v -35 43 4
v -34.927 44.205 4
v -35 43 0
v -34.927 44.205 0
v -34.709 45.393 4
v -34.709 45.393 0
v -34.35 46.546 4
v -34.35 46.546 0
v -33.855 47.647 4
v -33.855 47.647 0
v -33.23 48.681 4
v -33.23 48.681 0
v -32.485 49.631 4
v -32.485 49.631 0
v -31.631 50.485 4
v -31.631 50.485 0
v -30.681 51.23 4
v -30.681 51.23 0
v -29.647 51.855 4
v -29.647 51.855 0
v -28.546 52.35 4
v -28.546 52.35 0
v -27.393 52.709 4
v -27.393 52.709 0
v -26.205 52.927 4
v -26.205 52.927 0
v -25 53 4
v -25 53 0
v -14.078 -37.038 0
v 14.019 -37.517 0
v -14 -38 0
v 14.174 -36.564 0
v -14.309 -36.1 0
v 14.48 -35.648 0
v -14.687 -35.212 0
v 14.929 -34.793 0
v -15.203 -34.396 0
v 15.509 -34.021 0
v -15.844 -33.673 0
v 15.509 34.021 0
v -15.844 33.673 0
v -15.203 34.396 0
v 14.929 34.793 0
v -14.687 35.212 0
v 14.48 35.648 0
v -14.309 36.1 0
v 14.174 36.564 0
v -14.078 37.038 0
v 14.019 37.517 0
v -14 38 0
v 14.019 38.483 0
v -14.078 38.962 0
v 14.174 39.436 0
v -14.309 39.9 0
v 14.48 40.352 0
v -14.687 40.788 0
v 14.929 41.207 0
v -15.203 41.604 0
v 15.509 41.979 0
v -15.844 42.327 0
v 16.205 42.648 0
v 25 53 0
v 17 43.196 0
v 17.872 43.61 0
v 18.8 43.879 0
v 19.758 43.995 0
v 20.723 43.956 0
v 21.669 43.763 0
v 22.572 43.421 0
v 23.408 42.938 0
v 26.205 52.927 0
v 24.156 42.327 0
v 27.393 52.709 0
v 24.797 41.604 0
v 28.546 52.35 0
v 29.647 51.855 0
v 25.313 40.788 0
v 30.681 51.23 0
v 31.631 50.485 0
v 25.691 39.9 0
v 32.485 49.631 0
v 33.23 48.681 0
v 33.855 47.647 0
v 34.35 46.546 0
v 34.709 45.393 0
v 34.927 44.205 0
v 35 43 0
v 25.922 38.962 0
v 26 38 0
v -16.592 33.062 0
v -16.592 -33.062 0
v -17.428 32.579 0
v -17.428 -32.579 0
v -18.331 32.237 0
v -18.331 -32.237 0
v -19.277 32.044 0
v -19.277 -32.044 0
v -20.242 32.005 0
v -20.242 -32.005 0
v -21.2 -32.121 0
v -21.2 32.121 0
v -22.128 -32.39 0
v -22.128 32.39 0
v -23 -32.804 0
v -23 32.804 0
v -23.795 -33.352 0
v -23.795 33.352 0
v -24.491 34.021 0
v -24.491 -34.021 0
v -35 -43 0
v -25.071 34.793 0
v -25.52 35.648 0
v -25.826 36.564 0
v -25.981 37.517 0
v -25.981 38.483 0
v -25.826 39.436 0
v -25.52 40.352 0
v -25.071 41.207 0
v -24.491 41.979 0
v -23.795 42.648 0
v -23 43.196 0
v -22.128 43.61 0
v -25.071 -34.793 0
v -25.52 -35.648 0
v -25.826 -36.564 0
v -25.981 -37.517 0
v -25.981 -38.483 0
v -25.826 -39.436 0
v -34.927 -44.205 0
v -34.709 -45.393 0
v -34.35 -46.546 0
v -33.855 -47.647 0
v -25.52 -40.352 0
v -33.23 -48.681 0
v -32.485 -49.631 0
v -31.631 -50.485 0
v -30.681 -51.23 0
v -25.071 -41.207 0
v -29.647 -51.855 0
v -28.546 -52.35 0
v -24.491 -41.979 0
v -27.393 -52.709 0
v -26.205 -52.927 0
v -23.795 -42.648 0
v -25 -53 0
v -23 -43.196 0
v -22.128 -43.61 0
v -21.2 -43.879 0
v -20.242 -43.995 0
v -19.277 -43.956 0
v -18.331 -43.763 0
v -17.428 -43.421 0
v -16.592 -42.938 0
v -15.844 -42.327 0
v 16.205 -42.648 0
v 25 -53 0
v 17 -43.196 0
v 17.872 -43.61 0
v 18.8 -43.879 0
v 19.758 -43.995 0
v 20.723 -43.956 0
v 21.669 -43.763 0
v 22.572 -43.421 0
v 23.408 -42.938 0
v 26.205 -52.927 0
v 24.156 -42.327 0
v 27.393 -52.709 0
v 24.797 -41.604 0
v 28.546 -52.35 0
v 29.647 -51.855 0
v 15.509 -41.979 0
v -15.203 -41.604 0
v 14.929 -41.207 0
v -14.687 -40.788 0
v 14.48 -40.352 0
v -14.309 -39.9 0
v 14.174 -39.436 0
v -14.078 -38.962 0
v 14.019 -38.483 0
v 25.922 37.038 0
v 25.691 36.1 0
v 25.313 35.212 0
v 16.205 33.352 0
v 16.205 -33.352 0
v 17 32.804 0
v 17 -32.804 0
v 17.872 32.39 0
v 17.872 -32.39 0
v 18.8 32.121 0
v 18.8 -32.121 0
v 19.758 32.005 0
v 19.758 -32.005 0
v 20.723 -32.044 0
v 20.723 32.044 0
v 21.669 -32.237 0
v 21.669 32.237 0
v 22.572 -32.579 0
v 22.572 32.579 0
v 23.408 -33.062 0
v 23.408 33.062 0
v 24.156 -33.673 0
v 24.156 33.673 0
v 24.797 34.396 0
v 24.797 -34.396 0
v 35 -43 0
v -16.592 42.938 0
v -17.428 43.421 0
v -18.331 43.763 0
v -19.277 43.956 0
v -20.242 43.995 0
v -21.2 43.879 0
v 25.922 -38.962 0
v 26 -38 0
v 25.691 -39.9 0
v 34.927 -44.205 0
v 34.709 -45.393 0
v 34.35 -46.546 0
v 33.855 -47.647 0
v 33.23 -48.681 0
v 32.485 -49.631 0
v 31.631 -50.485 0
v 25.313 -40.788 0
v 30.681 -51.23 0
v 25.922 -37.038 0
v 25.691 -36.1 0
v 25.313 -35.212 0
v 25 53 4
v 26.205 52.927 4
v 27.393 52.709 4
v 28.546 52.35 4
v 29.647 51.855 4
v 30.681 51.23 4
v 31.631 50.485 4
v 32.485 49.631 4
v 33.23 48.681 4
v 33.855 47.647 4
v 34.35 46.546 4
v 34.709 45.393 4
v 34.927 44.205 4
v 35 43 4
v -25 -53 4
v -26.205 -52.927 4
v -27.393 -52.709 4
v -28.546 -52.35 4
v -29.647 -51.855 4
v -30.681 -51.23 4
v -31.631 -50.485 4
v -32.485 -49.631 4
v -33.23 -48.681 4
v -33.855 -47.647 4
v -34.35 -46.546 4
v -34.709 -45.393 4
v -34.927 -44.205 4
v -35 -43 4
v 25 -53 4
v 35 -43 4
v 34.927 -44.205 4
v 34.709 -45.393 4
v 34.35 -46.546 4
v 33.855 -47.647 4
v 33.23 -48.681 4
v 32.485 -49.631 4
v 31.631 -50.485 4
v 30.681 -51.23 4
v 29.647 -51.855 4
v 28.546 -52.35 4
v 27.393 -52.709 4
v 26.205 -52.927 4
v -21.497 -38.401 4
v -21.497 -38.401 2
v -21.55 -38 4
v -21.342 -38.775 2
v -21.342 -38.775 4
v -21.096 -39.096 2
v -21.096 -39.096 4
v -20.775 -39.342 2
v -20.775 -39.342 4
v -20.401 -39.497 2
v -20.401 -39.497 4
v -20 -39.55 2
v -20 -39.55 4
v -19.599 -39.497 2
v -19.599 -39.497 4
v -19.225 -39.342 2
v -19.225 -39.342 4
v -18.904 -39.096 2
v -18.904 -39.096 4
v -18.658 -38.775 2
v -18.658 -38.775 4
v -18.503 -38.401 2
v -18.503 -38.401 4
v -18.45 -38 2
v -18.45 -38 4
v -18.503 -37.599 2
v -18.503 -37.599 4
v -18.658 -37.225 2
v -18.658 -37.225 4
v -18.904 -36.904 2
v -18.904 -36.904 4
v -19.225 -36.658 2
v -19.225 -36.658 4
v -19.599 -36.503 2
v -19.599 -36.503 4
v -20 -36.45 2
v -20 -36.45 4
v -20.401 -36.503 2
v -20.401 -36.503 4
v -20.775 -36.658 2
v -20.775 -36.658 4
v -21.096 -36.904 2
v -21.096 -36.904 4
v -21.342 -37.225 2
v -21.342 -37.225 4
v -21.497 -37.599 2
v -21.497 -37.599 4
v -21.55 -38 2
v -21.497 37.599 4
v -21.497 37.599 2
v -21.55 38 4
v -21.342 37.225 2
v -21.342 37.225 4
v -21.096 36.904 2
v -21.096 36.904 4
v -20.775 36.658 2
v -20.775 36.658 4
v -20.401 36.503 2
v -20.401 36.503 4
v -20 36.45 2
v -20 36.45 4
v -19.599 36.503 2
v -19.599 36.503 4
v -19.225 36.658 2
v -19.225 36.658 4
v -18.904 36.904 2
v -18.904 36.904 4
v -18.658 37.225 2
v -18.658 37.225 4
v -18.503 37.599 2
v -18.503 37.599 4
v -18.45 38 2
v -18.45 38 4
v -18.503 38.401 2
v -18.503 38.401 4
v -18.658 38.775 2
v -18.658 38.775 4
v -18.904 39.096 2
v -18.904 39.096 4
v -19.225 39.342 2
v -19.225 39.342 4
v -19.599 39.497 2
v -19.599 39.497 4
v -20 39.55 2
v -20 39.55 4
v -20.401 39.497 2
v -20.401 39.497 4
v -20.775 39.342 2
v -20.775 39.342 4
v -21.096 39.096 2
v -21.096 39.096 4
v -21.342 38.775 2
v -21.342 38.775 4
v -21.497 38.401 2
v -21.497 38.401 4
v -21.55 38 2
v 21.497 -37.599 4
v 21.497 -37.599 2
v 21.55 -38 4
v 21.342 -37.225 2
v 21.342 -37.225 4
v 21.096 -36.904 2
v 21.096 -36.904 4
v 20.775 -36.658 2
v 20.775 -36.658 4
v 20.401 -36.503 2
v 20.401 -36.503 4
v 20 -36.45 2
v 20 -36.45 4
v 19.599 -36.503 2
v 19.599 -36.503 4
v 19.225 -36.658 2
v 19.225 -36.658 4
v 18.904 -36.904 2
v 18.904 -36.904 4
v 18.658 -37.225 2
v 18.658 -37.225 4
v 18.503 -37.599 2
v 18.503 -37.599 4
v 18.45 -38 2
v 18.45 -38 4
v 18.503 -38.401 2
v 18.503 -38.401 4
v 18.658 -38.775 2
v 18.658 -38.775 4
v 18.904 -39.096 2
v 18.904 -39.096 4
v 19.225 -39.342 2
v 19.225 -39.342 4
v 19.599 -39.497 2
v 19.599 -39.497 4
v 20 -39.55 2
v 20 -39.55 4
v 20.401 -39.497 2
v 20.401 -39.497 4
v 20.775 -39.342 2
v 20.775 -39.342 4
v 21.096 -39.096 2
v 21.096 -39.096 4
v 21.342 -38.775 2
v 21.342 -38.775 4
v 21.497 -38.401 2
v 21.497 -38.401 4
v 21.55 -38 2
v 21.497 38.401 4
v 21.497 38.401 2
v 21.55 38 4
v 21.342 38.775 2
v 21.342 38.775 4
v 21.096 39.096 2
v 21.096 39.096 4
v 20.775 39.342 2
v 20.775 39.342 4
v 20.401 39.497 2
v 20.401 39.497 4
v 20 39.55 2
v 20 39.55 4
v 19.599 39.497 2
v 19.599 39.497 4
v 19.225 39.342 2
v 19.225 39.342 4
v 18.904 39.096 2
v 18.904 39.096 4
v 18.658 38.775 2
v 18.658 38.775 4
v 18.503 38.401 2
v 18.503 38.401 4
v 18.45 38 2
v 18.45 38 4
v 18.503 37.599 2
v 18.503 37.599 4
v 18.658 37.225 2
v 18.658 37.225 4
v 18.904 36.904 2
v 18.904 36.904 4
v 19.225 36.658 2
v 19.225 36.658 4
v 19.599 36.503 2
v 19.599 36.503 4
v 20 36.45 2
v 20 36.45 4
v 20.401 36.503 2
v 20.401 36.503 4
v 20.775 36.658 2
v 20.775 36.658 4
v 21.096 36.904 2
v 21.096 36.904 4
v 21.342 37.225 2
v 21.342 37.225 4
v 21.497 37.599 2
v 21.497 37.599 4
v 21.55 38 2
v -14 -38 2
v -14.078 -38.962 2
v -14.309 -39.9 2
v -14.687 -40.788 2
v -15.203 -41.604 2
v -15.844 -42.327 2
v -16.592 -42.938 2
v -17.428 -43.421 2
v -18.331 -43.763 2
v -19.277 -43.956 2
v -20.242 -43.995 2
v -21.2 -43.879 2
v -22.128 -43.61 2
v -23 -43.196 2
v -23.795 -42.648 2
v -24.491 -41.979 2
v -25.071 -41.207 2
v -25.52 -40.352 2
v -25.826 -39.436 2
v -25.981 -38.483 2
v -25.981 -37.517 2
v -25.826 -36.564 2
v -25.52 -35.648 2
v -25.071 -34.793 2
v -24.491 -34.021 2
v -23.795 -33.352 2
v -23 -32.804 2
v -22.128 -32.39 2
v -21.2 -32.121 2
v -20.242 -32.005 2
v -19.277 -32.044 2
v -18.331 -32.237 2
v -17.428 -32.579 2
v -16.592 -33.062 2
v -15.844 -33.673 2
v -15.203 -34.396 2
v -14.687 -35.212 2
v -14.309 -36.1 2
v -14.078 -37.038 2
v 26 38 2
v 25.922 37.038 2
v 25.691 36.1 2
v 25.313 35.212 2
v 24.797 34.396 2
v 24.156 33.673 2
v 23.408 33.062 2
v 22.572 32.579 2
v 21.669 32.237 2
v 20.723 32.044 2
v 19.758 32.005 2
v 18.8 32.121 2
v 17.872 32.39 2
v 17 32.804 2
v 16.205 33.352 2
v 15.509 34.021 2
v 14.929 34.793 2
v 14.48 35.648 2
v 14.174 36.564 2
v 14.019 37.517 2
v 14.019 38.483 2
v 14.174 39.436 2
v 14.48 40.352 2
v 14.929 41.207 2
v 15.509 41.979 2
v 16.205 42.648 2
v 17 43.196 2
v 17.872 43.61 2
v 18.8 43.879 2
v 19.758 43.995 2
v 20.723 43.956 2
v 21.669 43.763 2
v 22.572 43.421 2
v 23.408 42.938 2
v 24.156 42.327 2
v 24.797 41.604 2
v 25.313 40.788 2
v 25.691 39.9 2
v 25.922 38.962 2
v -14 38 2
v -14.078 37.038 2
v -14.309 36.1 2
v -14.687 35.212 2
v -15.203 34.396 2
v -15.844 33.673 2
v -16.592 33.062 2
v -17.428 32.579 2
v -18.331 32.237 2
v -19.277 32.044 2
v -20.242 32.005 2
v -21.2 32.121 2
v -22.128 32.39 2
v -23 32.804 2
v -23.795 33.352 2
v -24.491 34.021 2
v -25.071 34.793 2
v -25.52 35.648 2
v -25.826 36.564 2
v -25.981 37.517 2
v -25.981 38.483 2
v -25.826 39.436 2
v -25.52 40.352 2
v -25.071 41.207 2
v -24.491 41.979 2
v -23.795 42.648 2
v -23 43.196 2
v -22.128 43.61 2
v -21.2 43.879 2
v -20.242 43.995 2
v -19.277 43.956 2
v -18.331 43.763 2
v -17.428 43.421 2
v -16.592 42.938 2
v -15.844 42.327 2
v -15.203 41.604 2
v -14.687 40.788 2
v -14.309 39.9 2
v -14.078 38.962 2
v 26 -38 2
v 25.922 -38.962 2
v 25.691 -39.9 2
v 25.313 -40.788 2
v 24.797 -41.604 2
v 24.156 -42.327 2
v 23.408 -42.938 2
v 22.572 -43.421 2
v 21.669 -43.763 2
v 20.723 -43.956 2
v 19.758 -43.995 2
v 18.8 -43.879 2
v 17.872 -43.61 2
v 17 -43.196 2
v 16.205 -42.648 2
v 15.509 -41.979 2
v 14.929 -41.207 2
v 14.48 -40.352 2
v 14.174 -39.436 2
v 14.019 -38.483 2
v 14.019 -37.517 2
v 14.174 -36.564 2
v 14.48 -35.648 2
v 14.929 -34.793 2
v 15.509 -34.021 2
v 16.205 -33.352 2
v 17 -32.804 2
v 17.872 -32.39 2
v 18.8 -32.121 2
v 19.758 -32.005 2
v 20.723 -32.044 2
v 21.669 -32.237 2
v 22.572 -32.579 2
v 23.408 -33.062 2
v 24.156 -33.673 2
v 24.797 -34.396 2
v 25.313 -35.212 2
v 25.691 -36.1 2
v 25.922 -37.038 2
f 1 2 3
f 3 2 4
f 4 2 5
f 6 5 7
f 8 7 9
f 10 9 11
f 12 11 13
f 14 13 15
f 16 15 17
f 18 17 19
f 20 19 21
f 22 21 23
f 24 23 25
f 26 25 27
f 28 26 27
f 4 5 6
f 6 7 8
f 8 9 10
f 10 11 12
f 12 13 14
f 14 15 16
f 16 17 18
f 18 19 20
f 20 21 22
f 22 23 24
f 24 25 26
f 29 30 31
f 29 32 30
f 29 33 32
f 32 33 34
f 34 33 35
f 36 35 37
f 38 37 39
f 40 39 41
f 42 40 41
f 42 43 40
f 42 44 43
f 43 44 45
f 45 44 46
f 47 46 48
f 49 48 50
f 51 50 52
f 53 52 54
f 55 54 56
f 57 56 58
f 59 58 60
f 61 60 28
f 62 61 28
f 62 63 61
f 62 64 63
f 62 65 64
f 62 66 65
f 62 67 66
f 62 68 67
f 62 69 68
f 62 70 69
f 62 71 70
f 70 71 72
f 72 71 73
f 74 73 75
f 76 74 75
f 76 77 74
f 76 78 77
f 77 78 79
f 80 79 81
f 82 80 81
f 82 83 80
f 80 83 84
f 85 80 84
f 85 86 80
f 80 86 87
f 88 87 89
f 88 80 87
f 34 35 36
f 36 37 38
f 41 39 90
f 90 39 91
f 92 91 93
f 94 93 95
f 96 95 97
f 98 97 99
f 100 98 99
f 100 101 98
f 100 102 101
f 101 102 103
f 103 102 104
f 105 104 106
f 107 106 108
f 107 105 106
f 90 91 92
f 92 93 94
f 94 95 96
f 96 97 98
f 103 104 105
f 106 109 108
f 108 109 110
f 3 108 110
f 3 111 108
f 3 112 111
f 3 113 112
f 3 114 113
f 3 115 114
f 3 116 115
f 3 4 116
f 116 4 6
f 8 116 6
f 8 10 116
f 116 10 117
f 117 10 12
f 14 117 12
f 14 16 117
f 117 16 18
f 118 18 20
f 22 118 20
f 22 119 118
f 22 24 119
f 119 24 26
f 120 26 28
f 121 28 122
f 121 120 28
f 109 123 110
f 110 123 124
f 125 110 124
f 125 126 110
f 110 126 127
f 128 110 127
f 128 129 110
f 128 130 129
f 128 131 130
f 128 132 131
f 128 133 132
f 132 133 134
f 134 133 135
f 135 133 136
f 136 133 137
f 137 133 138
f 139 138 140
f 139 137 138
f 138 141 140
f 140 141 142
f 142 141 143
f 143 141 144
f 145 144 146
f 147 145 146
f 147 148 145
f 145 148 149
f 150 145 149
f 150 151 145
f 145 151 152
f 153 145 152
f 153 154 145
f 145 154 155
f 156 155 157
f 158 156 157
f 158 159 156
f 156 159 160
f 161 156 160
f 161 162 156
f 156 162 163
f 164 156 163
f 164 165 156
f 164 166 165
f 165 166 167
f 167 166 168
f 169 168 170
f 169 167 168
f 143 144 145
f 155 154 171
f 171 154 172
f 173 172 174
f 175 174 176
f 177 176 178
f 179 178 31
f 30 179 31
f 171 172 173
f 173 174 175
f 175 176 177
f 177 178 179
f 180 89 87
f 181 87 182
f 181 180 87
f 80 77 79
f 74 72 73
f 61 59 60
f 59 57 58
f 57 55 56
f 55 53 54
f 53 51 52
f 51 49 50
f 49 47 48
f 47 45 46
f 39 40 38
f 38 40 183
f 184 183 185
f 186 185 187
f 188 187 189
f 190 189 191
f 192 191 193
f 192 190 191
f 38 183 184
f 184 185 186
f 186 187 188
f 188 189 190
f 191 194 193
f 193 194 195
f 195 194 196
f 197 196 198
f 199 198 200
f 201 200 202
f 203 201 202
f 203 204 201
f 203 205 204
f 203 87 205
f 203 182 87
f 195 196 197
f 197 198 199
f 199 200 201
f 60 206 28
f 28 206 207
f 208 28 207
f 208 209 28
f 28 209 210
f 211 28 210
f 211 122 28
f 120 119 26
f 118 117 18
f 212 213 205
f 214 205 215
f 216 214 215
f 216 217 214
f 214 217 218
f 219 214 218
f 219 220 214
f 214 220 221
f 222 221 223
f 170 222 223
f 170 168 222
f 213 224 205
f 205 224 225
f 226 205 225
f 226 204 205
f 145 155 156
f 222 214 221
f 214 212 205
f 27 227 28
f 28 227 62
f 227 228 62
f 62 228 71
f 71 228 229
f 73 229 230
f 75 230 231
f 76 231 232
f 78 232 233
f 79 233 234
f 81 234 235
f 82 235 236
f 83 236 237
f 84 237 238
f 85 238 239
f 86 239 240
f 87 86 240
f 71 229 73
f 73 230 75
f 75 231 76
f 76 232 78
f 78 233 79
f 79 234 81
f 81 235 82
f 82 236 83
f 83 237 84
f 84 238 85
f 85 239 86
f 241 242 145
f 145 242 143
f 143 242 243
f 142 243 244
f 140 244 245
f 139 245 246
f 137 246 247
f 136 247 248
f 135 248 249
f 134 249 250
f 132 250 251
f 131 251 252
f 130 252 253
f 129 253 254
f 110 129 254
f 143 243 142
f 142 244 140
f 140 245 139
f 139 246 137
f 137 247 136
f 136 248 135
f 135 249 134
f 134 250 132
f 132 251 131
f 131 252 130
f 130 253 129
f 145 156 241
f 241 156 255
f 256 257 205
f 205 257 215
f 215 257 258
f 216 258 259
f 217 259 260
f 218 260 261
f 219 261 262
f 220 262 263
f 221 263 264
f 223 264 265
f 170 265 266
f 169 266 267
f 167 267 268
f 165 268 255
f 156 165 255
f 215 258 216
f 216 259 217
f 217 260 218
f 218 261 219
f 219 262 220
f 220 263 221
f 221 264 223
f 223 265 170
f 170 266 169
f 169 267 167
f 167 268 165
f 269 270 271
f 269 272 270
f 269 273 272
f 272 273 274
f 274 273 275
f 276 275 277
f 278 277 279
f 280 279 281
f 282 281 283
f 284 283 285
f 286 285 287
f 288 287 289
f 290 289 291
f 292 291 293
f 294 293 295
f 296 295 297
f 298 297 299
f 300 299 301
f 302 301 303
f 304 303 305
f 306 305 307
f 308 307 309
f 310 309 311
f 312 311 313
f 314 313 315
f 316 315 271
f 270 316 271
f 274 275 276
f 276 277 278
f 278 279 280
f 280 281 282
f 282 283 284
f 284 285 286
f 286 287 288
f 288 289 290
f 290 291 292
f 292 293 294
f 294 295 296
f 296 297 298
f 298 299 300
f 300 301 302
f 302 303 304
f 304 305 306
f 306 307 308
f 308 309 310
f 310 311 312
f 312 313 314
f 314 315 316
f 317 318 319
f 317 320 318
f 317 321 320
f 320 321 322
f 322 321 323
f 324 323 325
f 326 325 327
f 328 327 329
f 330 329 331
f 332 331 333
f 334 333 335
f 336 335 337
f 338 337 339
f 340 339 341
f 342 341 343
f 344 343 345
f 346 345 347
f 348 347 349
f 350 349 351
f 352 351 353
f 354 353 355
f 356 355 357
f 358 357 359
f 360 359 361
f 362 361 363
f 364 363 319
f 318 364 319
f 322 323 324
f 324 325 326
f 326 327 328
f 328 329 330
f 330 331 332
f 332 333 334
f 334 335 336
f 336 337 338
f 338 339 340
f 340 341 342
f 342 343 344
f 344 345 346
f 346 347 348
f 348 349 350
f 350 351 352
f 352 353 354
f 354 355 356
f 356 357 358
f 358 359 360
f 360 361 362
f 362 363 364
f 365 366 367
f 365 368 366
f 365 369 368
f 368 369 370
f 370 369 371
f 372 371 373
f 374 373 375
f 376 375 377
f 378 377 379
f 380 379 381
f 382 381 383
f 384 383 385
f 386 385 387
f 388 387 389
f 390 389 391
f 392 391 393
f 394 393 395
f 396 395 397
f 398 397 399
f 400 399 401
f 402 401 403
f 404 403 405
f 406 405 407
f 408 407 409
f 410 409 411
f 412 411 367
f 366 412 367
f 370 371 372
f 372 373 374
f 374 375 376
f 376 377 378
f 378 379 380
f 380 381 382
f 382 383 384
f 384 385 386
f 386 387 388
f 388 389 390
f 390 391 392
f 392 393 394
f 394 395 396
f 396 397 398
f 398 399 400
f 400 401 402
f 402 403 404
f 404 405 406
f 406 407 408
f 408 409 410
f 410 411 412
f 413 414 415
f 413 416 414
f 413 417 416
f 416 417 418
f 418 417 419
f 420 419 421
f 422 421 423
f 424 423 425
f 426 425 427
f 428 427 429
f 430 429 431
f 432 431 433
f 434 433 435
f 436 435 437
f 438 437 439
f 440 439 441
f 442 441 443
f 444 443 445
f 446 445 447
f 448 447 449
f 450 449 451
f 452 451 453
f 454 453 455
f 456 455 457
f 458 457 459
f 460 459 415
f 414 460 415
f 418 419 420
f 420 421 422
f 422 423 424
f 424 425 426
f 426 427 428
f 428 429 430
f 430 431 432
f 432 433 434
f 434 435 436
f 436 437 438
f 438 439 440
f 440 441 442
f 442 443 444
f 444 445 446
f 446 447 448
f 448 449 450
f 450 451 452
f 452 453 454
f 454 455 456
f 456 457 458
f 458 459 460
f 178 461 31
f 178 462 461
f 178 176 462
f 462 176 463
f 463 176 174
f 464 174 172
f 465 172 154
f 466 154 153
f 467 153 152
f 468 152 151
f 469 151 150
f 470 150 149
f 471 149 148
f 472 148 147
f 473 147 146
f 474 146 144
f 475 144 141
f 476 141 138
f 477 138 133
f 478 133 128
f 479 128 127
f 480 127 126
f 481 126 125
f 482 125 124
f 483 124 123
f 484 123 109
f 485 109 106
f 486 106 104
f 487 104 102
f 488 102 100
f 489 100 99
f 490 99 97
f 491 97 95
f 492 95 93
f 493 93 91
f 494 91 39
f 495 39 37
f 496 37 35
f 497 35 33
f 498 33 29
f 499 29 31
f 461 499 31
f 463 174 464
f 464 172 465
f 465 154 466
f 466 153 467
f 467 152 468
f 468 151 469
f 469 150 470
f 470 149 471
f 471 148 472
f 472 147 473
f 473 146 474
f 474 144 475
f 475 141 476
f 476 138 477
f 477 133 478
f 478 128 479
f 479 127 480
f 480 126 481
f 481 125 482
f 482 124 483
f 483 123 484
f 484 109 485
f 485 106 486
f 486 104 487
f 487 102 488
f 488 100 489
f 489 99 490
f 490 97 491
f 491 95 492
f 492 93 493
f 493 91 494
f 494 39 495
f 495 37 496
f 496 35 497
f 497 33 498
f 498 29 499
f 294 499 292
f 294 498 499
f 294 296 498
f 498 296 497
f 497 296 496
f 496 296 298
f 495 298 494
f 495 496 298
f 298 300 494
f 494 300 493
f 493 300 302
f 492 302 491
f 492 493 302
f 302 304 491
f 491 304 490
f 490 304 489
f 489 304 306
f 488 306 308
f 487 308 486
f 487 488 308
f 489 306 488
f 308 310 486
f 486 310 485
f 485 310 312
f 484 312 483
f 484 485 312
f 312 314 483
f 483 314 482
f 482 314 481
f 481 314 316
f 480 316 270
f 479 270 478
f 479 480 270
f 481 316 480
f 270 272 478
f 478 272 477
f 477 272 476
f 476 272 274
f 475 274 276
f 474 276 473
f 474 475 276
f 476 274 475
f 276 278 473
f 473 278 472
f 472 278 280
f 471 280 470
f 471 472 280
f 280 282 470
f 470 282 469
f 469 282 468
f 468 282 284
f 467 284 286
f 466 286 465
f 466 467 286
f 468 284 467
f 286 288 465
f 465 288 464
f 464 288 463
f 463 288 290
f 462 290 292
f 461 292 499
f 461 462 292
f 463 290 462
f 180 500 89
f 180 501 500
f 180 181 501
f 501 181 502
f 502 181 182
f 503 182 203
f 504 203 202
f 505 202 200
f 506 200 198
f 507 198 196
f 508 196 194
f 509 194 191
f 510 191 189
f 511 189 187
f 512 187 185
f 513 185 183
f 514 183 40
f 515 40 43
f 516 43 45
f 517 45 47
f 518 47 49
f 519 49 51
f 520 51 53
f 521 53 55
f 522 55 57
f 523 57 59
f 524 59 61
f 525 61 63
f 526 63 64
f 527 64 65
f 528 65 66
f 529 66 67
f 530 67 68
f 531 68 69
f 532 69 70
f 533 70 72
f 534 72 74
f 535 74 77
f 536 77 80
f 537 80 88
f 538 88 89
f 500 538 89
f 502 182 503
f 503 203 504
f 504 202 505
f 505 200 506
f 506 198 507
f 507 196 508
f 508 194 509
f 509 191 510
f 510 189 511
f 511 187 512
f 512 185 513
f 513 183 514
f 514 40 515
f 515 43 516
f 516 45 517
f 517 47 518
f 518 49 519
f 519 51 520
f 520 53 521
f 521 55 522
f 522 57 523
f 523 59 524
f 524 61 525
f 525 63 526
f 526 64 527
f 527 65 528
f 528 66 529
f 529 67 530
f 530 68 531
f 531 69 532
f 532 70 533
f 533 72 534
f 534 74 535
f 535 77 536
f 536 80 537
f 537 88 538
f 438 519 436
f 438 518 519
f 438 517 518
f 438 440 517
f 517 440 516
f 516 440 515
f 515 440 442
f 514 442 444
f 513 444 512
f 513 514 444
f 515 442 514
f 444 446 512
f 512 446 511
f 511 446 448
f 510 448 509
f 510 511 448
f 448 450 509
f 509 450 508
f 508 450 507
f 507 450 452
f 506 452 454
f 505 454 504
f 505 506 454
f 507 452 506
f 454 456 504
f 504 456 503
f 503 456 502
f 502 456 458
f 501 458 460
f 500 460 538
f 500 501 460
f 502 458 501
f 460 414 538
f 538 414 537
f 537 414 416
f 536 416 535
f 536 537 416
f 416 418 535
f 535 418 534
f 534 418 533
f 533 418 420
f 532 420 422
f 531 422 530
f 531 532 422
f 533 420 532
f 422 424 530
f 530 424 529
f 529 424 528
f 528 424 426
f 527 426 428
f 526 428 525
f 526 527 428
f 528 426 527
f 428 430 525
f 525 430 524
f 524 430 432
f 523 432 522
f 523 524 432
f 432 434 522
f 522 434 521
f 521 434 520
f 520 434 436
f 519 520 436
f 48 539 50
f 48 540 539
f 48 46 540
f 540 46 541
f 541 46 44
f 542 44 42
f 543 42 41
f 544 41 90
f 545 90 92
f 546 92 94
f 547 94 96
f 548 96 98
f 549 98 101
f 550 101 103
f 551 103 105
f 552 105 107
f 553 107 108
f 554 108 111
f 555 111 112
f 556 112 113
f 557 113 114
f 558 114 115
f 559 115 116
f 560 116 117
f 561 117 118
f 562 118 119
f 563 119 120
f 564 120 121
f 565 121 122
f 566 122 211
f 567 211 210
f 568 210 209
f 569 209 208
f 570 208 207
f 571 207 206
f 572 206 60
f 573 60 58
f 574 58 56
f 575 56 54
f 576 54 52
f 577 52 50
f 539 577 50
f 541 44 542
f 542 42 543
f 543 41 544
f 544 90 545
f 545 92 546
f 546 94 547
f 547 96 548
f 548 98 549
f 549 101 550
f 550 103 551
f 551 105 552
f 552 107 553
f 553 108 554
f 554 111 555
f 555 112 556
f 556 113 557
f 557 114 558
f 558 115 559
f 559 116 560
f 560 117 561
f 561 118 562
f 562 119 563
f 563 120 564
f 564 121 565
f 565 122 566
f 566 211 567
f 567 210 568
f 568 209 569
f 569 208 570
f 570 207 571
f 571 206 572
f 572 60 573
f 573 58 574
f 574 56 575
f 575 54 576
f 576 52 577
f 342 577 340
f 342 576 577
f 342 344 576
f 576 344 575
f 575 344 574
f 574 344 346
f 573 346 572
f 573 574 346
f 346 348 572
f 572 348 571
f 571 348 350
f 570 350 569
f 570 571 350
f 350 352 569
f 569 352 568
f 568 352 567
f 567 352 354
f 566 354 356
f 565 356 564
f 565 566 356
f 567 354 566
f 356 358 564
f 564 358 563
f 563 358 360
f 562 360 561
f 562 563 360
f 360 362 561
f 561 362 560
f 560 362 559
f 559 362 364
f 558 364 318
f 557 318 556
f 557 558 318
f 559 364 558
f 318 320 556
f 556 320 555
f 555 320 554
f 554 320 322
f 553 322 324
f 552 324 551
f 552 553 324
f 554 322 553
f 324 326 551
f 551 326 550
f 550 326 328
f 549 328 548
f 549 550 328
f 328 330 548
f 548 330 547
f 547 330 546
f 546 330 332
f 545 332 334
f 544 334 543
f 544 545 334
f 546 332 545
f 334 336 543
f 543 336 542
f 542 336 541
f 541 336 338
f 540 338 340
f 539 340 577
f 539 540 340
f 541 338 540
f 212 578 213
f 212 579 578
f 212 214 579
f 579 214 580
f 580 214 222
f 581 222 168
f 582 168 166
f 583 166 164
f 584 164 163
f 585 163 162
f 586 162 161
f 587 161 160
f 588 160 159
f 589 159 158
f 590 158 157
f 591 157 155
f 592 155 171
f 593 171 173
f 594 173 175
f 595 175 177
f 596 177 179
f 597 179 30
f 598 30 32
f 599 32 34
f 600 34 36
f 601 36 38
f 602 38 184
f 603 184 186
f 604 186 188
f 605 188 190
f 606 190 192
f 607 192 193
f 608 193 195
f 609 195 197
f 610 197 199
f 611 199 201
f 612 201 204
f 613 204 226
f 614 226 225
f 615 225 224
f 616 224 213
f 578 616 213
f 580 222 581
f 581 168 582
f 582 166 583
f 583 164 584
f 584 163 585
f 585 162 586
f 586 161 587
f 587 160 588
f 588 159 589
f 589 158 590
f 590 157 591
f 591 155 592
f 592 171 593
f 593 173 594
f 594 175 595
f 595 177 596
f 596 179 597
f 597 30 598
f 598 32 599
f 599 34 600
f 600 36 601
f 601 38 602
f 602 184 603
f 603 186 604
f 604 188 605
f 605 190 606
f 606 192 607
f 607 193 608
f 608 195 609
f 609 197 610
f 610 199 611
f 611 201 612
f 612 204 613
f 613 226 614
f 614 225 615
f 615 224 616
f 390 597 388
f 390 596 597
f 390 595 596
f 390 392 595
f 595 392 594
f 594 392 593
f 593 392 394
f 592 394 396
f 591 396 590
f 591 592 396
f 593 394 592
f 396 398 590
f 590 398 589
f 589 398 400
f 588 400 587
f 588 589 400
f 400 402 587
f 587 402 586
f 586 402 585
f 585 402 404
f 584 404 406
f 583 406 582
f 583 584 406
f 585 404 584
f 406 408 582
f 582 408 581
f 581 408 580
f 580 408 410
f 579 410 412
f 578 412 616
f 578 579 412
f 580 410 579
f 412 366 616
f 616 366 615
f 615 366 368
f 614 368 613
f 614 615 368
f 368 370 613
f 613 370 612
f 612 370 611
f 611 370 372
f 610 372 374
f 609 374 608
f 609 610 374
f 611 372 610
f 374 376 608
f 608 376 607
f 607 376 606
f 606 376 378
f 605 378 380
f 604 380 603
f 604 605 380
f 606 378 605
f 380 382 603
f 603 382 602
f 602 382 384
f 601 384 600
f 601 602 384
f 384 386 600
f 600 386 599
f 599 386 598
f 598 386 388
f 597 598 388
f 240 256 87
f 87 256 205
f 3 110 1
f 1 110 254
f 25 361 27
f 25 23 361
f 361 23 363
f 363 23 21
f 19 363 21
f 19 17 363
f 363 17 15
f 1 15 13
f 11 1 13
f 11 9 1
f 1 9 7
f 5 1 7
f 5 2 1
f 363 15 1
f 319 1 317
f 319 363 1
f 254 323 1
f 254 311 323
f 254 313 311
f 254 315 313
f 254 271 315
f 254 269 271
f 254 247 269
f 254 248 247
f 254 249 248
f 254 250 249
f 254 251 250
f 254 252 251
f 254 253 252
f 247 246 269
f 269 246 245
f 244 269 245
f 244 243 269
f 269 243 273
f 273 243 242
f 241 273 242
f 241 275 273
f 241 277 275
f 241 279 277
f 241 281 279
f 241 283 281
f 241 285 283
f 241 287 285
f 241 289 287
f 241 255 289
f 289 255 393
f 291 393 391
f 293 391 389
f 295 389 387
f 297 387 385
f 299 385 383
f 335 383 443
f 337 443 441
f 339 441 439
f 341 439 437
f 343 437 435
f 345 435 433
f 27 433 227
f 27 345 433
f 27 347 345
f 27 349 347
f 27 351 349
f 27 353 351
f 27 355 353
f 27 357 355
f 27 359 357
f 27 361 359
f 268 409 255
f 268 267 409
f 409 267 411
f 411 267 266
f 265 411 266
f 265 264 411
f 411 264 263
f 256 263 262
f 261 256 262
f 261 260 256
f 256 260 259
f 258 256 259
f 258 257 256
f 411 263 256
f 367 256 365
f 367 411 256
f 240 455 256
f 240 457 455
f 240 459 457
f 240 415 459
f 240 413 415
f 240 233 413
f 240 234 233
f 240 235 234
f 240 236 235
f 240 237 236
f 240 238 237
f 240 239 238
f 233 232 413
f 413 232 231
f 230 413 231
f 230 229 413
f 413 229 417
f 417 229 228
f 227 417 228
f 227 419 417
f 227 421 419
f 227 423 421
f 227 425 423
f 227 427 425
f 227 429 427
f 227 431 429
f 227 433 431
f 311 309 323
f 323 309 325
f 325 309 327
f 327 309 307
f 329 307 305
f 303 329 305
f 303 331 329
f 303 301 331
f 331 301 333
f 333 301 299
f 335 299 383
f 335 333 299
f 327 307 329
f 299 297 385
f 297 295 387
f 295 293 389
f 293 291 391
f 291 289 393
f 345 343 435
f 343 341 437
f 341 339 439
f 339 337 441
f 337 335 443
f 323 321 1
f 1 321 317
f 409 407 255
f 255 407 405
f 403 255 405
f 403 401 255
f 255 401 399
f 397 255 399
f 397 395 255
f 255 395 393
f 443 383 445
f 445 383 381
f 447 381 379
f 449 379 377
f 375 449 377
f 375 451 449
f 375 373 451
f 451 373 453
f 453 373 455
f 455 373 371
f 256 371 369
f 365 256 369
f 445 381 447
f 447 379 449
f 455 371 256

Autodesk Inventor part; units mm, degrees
ref_plane "YZ Plane" through (0, 0, 0) normal (1, 0, 0) x (0, 1, 0)
ref_plane "XZ Plane" through (0, 0, 0) normal (0, 1, 0) x (-1, 0, 0)
ref_plane "XY Plane" through (0, 0, 0) normal (0, 0, 1) x (1, 0, 0)
sketch "Sketch1" plane through (0, 0, 0) normal (0, 0, 1) x (1, 0, 0)
  line L0 (0, 53.2) -> (0, -53.2) projected
  line L1 (-28, 0) -> (28, 0) projected
  point P0 (0, 0)
  point P1 (20, 38)
  point P2 (-20, 38)
  point P3 (-20, -38)
  point P4 (20, -38)
  dimension "d0" = 76
  dimension "d2" = 40
sketch "Sketch2" plane through (0, 0, 0) normal (0, 0, 1) x (1, 0, 0)
  line L0 (-35, 53) -> (35, 53)
  line L1 (35, 53) -> (35, -53)
  line L2 (35, -53) -> (-35, -53)
  line L3 (-35, -53) -> (-35, 53)
  point P0 (0, 0)
  point P1 (-20, 38)
  point P2 (20, 38)
  point P3 (20, -38)
  point P4 (-20, -38)
  dimension "d3" = 15
  dimension "d4" = 15
  dimension "d5" = 15
  dimension "d6" = 15
extrude "Extrusion1" add sketch "Sketch2" along normal blind 4
hole "Hole1" at (20, 38, 0) at (-20, 38, 0) at (-20, -38, 0) at (20, -38, 0) direction (0, 0, 1) diameter 12 depth 2
hole "Hole2" at (20, 38, 2) direction (0, 0, 1) diameter 3.1 end through all
mirror "Mirror1" about plane through (0, 0, 0) normal (0, 1, 0) of "Hole2"
mirror "Mirror2" about plane through (0, 0, 0) normal (1, 0, 0) of "Hole2", "Mirror1"
fillet "Fillet1" radius 10 4 edges at (35, -53, 2) (-35, -53, 2) (35, 53, 2) (-35, 53, 2)
equation "\"d4\" = d3"
equation "\"d5\" = d3"
equation "\"d6\" = d3"
properties part number "support"
